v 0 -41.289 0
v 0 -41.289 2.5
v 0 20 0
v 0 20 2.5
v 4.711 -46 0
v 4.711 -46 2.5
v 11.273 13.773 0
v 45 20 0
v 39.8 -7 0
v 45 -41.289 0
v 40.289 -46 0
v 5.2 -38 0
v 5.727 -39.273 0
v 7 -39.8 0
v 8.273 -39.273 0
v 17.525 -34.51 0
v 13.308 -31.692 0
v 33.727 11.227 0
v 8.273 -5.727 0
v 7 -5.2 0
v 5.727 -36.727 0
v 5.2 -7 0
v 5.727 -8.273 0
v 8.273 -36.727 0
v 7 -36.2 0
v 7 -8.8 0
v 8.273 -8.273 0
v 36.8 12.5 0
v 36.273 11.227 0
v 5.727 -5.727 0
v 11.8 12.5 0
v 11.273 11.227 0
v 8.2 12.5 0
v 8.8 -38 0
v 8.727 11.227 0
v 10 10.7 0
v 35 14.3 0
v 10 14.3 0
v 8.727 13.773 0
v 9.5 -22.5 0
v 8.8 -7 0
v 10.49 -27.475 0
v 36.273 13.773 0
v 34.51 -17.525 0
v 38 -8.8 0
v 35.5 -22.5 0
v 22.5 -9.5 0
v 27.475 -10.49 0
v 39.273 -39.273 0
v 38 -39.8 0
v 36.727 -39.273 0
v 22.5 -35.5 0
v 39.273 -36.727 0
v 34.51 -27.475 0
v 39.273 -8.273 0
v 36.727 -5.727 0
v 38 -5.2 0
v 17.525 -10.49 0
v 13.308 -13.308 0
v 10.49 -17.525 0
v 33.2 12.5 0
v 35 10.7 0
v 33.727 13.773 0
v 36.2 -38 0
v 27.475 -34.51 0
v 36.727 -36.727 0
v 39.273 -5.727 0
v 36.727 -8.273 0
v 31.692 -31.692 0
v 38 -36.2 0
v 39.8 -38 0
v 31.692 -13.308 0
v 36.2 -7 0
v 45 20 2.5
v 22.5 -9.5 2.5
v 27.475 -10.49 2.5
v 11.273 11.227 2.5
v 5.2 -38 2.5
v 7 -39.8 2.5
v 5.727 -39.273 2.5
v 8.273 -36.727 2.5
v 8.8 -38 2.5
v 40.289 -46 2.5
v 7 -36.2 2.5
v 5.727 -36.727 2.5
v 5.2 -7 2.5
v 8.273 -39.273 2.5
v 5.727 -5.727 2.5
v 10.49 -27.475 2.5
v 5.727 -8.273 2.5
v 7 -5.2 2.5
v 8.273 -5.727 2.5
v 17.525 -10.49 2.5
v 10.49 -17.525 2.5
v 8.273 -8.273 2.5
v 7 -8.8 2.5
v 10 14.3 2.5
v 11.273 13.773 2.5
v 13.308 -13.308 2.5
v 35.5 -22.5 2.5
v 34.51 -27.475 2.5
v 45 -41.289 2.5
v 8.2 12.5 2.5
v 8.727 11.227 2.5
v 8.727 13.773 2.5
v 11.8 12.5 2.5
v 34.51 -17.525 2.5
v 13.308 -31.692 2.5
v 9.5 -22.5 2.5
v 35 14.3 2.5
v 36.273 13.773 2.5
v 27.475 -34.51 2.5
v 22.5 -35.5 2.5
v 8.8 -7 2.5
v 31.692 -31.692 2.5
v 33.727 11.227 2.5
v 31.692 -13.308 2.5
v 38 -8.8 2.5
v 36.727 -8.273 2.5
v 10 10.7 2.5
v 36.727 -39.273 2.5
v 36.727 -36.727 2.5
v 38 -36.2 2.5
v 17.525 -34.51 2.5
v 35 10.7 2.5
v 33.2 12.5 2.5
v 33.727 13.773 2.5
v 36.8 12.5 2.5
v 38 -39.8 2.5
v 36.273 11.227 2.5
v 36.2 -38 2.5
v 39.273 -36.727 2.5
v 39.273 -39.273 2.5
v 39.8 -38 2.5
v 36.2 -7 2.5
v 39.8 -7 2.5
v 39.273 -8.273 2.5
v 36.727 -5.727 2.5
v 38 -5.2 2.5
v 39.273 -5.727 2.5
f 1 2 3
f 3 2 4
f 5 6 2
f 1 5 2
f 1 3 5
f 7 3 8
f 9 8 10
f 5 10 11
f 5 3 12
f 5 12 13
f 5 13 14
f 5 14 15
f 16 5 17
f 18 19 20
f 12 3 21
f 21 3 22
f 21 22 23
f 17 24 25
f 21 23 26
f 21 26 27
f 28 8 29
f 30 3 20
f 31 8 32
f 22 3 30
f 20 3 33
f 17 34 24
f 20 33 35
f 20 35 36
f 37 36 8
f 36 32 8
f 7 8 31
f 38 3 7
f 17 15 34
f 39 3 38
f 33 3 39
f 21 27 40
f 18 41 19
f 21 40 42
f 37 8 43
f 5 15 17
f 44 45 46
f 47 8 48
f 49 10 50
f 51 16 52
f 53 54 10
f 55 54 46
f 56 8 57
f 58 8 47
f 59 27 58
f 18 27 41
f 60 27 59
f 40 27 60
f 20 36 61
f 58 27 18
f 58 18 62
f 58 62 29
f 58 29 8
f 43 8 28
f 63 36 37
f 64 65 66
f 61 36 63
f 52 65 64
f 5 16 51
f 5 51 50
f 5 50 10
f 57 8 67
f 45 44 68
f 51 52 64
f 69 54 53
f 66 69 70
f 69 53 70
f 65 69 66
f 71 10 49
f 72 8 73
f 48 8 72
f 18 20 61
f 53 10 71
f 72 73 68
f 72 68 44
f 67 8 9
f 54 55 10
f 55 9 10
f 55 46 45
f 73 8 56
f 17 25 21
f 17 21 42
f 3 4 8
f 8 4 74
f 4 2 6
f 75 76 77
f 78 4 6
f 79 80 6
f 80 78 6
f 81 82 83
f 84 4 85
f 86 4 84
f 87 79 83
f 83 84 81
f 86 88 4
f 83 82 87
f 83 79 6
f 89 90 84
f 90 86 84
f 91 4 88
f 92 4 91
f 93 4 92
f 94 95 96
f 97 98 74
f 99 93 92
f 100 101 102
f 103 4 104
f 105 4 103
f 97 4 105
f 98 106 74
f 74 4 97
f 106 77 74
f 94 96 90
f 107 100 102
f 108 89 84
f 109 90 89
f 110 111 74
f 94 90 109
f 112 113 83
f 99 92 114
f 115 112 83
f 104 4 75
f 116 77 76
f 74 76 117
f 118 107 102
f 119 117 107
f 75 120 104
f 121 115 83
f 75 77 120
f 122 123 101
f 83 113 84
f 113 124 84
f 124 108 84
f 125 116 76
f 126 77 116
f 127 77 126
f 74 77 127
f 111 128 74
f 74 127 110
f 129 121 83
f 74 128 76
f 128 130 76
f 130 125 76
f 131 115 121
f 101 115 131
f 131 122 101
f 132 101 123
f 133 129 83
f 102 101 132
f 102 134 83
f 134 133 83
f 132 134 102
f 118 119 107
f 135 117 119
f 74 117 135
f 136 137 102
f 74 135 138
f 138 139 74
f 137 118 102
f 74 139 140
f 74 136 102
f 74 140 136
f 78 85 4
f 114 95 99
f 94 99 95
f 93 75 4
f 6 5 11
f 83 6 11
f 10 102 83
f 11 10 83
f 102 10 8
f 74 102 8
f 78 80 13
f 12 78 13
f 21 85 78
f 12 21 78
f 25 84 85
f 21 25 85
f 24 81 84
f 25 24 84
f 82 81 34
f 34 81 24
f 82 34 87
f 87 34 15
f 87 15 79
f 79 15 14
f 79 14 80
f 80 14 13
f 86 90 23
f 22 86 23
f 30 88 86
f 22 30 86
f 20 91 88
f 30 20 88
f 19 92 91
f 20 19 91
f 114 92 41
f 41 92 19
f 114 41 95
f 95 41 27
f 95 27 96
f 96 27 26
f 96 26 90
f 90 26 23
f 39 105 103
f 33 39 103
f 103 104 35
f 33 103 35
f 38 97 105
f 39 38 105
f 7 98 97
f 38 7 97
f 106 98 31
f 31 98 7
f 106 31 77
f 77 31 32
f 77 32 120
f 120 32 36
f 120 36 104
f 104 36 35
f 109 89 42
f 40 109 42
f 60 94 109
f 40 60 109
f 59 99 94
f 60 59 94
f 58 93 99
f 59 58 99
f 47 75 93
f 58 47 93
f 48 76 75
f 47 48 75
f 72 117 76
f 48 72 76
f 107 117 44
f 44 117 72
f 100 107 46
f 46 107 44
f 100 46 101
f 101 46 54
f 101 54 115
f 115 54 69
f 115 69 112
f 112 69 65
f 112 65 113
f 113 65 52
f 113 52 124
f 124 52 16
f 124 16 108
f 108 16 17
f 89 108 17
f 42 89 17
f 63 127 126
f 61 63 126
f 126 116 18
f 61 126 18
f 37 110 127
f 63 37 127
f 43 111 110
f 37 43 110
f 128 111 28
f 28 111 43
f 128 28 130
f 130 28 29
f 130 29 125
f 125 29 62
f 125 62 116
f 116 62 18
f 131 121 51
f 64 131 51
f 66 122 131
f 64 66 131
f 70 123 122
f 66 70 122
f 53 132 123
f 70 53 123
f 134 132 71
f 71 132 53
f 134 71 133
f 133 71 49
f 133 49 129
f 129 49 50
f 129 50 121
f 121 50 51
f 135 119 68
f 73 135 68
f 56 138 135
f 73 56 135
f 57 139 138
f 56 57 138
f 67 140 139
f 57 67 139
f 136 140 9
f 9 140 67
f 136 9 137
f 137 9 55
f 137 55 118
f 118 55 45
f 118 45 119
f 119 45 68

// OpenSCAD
// AIR HOCKEY ROBOT PROJECT (AHROBOT)
// 
// by Jose Julio

// X axis motor mount


motor_center_x = 22.5;
motor_center_y = -22.5;
base_height = 2.5;


module x_motor_mount_base()
{	
	translate([0,-46,0]) cube([45,46,base_height]); // Motor mount
	
	// mount part
	translate([0,0,0]) cube([motor_center_x*2,20,base_height]);

	// Reinforce
	//translate([2.5,-20,0]) cube([2,42,base_height*1.5]);
	//translate([16,-6,0]) cube([2,28,base_height*1.5]);
	//translate([32,-6,0]) cube([2,28,base_height*1.5]);
	//translate([45.5,-20,0]) cube([2,42,base_height*1.5]);

}

module x_motor_mount_holes()
{
	// Center motor hole
	translate([motor_center_x,motor_center_y,2]) cylinder(r=13,h=5,center=true,$fn=16);
	// Motor holes
	translate([motor_center_x-15.5,motor_center_y-15.5,2]) cylinder(r=1.8,h=5,center=true,$fn=8);
	translate([motor_center_x+15.5,motor_center_y-15.5,2]) cylinder(r=1.8,h=5,center=true,$fn=8);
	translate([motor_center_x-15.5,motor_center_y+15.5,2]) cylinder(r=1.8,h=5,center=true,$fn=8);
	translate([motor_center_x+15.5,motor_center_y+15.5,2]) cylinder(r=1.8,h=5,center=true,$fn=8);
 
	
   // Mount holes
	translate([motor_center_x-12.5,12.5,2]) cylinder(r=1.8,h=5,center=true,$fn=8);
	translate([motor_center_x+12.5,12.5,2]) cylinder(r=1.8,h=5,center=true,$fn=8);

	// motor mount cuts
	translate([motor_center_x*2+25,-motor_center_x*4+3,-1]) rotate([0,0,45]) cube([50,50,4]); // Motor mount
	translate([-25,-motor_center_x*4+3,-1]) rotate([0,0,45]) cube([50,50,4]); // Motor mount

}





translate([0,0,0]) rotate ([0,0,0]) difference()
{
x_motor_mount_base();
x_motor_mount_holes();
}
